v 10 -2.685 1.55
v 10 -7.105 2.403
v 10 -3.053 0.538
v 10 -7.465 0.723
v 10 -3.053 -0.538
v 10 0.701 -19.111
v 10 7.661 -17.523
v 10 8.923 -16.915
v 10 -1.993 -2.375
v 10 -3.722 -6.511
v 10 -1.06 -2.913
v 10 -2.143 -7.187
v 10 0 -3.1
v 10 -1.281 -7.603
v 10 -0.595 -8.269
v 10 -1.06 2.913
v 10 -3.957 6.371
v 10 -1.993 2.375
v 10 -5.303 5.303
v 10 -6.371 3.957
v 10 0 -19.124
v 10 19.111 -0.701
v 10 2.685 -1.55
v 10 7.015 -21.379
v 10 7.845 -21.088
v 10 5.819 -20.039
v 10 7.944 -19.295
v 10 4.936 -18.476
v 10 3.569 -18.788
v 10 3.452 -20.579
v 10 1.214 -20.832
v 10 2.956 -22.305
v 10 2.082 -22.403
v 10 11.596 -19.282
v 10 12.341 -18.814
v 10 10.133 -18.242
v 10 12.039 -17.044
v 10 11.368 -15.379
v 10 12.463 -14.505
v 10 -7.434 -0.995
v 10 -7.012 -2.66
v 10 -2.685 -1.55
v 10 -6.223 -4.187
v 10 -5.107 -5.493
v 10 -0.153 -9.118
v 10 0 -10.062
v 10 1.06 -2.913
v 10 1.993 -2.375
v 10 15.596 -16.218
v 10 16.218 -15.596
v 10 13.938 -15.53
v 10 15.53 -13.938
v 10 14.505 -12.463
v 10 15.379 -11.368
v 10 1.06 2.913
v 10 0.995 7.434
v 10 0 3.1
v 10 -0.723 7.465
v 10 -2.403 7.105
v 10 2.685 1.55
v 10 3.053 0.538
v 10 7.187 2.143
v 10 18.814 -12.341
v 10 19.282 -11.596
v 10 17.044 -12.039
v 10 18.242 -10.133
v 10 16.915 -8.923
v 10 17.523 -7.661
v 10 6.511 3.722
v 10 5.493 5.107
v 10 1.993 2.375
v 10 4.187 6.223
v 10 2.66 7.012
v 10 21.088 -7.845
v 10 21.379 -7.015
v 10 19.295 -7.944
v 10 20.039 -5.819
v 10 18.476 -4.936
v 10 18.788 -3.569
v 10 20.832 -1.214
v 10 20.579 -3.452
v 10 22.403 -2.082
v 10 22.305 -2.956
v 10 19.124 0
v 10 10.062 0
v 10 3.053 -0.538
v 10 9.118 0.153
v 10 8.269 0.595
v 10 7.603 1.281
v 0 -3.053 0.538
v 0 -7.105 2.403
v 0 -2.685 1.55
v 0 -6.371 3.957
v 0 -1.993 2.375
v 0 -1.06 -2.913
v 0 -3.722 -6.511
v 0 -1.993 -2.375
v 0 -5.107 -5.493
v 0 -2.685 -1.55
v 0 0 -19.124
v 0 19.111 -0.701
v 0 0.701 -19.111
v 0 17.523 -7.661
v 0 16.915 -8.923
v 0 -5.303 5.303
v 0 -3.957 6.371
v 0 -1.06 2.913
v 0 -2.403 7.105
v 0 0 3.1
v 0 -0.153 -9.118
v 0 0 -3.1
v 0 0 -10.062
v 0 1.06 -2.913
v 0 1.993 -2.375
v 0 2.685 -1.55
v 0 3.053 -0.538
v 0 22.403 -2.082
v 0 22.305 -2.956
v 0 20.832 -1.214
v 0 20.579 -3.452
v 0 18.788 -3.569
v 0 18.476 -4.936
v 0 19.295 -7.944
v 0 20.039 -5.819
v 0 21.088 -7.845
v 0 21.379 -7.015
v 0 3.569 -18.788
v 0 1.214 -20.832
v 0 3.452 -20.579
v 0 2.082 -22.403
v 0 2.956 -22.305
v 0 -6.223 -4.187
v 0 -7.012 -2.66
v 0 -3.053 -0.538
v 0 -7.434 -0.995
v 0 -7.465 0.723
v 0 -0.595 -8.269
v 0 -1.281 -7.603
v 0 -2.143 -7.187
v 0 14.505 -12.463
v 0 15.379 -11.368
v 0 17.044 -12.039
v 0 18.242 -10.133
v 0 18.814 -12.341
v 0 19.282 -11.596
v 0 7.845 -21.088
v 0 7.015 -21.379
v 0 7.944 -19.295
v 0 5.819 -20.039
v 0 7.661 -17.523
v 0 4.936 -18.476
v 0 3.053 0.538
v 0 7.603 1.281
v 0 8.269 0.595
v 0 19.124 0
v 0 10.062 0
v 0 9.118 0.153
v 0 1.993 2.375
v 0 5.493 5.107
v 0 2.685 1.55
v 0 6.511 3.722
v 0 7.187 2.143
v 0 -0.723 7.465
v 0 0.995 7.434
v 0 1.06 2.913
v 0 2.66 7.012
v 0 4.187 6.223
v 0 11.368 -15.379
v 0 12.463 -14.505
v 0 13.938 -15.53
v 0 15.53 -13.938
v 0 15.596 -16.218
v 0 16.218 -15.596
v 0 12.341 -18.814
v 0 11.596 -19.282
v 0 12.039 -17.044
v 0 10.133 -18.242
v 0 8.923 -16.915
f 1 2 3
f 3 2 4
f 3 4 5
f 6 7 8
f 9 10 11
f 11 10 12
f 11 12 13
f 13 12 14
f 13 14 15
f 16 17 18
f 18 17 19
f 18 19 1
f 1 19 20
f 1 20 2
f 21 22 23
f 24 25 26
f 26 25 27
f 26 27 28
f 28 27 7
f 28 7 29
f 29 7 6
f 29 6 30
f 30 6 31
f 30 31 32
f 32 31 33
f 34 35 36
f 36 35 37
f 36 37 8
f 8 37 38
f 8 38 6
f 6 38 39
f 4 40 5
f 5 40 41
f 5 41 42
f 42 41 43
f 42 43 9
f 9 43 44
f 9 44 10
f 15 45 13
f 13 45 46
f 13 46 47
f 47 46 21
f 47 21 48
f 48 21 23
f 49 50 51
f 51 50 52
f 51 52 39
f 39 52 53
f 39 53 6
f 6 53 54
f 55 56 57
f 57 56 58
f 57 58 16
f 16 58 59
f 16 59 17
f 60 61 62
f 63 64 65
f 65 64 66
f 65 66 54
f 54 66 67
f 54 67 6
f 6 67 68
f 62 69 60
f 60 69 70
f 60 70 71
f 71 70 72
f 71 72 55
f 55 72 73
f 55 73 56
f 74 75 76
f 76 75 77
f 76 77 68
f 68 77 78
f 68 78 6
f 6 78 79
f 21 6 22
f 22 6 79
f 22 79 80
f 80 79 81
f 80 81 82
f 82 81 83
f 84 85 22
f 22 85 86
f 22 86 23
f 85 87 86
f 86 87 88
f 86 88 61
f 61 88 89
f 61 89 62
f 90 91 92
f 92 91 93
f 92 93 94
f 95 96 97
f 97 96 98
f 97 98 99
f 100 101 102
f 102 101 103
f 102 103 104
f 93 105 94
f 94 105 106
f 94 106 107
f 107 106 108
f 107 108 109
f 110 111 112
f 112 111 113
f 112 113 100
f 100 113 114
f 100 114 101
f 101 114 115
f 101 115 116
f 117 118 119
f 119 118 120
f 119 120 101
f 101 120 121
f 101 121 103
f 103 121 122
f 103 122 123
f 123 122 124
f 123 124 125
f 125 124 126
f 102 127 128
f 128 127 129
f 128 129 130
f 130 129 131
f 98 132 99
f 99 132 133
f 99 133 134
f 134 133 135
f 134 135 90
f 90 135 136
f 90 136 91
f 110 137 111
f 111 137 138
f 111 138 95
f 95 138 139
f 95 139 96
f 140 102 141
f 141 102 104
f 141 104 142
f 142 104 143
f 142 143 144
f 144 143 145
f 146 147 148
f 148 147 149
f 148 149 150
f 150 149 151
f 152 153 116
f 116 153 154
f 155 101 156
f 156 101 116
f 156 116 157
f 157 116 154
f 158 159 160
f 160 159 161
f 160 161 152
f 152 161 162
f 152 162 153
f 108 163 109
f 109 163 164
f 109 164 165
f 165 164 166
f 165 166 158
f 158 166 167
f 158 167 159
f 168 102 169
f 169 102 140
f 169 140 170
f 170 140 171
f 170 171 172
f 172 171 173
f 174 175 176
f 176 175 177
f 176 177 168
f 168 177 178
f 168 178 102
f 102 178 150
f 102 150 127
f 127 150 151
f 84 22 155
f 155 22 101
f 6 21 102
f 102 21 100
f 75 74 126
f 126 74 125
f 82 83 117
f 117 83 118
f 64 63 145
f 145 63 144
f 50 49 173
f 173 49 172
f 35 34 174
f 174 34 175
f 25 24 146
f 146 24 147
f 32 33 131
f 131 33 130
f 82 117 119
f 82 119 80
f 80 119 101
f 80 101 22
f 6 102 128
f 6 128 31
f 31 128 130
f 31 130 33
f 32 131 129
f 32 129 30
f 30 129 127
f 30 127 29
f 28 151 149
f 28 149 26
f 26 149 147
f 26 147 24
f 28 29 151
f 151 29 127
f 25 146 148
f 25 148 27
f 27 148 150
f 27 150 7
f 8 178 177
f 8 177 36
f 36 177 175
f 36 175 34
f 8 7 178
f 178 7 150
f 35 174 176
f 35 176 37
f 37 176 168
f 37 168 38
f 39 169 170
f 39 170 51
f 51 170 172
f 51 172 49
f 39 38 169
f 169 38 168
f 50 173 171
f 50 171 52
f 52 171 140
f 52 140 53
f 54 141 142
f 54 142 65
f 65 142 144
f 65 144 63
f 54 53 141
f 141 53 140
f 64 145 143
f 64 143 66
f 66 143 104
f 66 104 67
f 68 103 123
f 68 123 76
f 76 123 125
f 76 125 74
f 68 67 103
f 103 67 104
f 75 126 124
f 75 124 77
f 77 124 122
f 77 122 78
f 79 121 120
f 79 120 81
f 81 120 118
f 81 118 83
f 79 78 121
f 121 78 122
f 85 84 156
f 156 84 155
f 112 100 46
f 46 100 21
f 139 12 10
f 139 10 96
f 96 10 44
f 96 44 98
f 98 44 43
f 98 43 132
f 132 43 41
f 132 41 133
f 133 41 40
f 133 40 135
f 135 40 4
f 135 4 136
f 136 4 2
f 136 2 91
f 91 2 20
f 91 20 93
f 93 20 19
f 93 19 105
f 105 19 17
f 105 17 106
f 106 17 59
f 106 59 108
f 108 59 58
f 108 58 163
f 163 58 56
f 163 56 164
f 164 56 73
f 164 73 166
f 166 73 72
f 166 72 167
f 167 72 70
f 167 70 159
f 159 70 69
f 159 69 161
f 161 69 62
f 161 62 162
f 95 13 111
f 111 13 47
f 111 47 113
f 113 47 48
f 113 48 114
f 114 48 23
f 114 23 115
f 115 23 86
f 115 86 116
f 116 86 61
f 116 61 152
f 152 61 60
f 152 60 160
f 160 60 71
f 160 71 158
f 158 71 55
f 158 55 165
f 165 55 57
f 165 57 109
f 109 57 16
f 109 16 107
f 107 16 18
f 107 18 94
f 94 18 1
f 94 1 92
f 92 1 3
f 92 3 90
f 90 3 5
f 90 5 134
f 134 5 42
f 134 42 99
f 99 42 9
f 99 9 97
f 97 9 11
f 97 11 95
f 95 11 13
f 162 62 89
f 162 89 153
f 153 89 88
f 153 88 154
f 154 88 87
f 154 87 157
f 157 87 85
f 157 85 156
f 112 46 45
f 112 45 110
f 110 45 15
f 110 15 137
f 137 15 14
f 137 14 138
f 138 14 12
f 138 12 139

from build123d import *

# Parameters (mm, degrees)
BASPROSKE_W        = 10
BASPROSKE_H        = 22.5
TOOTHCUT_DEPTH     = 34.35416016
TEETHCUTS_COUNT    = 28
TEETHCUTS_ANGLE    = 347.142857143
BORSKE_R           = 7.5
BORE_DEPTH         = 50.0000508
CROQUIS1_OUTSIDE_W = 59.636
CROQUIS1_OUTSIDE_H = 59.636
EXTRUIR1_DEPTH     = 10
CROQUIS2_R         = 7.5
CROQUIS2_R_2       = 3.1
EXTRUIR2_DEPTH     = 10
REDONDEO1_R        = 3


with BuildPart() as part:
    # BasProSke → Base-Revolve (revolve)
    with BuildSketch(Plane(origin=(0, 0, 0), x_dir=(1, 0, 0), z_dir=(0, 1, 0)), mode=Mode.PRIVATE) as base_revolve_sk:
        with Locations((5, 11.25)):
            Rectangle(BASPROSKE_W, BASPROSKE_H)
    revolve(base_revolve_sk.sketch.rotate(Axis((-10, 0, 0), (1, 0, 0)), 180), axis=Axis((-10, 0, 0), (1, 0, 0)))

    # TooCutSke → ToothCut (cut, through all)
    with BuildSketch(Plane(origin=(0, 0, 0), x_dir=(0, 0, -1), z_dir=(1, 0, 0))):
        with BuildLine():
            ThreePointArc((0.70071741, 19.111158288), (0, 19.124), (-0.70071741, 19.111158288))
            ThreePointArc((-0.70071741, 19.111158288), (-1.220048441, 20.845037035), (-2.098754998, 22.427413418))
            ThreePointArc((-2.098754998, 22.427413418), (0, 22.5254), (2.098754998, 22.427413418))
            ThreePointArc((2.098754998, 22.427413418), (1.220048441, 20.845037035), (0.70071741, 19.111158288))
        make_face()
    toothcut = extrude(amount=TOOTHCUT_DEPTH, mode=Mode.SUBTRACT)

    # TeethCuts: ToothCut ×28 about axis
    teethcuts_axis = Axis((-10, 0, 0), (1, 0, 0))
    for i in range(1, TEETHCUTS_COUNT):
        add(toothcut.rotate(teethcuts_axis, i * TEETHCUTS_ANGLE / (TEETHCUTS_COUNT - 1)), mode=Mode.SUBTRACT)

    # BorSke → Bore (cut, symmetric)
    with BuildSketch(Plane(origin=(0, 0, 0), x_dir=(0, 0, -1), z_dir=(1, 0, 0))):
        with Locations(Location((0, 0, 0), (0, 0, 180))):
            Circle(BORSKE_R)
    extrude(amount=BORE_DEPTH, both=True, mode=Mode.SUBTRACT)

    # Croquis1 outside → Extruir1 (cut)
    with BuildSketch(Plane(origin=(10, 0, 0), x_dir=(0, 0, -1), z_dir=(1, 0, 0))):
        Rectangle(CROQUIS1_OUTSIDE_W, CROQUIS1_OUTSIDE_H)
        with BuildLine():
            Line((0, 19.124), (0, 0))
            Line((0, 0), (19.124, 0))
            ThreePointArc((19.124, 0), (29.041866068, 29.041866068), (0, 19.124))
        make_face(mode=Mode.SUBTRACT)
    extrude(amount=-EXTRUIR1_DEPTH, mode=Mode.SUBTRACT)

    # Croquis2 → Extruir2 (add, through all)
    with BuildSketch(Plane(origin=(10, 0, 0), x_dir=(0, 0, -1), z_dir=(1, 0, 0))):
        Circle(CROQUIS2_R)
        Circle(CROQUIS2_R_2, mode=Mode.SUBTRACT)
    extrude(amount=-EXTRUIR2_DEPTH)

    # Redondeo1
    redondeo1_edges = [part.edges().sort_by_distance(p)[0] for p in [
        (5, 7.5, 0),
        (5, 0, -7.5),
    ]]
    fillet(redondeo1_edges, radius=REDONDEO1_R)


solid = part.part
